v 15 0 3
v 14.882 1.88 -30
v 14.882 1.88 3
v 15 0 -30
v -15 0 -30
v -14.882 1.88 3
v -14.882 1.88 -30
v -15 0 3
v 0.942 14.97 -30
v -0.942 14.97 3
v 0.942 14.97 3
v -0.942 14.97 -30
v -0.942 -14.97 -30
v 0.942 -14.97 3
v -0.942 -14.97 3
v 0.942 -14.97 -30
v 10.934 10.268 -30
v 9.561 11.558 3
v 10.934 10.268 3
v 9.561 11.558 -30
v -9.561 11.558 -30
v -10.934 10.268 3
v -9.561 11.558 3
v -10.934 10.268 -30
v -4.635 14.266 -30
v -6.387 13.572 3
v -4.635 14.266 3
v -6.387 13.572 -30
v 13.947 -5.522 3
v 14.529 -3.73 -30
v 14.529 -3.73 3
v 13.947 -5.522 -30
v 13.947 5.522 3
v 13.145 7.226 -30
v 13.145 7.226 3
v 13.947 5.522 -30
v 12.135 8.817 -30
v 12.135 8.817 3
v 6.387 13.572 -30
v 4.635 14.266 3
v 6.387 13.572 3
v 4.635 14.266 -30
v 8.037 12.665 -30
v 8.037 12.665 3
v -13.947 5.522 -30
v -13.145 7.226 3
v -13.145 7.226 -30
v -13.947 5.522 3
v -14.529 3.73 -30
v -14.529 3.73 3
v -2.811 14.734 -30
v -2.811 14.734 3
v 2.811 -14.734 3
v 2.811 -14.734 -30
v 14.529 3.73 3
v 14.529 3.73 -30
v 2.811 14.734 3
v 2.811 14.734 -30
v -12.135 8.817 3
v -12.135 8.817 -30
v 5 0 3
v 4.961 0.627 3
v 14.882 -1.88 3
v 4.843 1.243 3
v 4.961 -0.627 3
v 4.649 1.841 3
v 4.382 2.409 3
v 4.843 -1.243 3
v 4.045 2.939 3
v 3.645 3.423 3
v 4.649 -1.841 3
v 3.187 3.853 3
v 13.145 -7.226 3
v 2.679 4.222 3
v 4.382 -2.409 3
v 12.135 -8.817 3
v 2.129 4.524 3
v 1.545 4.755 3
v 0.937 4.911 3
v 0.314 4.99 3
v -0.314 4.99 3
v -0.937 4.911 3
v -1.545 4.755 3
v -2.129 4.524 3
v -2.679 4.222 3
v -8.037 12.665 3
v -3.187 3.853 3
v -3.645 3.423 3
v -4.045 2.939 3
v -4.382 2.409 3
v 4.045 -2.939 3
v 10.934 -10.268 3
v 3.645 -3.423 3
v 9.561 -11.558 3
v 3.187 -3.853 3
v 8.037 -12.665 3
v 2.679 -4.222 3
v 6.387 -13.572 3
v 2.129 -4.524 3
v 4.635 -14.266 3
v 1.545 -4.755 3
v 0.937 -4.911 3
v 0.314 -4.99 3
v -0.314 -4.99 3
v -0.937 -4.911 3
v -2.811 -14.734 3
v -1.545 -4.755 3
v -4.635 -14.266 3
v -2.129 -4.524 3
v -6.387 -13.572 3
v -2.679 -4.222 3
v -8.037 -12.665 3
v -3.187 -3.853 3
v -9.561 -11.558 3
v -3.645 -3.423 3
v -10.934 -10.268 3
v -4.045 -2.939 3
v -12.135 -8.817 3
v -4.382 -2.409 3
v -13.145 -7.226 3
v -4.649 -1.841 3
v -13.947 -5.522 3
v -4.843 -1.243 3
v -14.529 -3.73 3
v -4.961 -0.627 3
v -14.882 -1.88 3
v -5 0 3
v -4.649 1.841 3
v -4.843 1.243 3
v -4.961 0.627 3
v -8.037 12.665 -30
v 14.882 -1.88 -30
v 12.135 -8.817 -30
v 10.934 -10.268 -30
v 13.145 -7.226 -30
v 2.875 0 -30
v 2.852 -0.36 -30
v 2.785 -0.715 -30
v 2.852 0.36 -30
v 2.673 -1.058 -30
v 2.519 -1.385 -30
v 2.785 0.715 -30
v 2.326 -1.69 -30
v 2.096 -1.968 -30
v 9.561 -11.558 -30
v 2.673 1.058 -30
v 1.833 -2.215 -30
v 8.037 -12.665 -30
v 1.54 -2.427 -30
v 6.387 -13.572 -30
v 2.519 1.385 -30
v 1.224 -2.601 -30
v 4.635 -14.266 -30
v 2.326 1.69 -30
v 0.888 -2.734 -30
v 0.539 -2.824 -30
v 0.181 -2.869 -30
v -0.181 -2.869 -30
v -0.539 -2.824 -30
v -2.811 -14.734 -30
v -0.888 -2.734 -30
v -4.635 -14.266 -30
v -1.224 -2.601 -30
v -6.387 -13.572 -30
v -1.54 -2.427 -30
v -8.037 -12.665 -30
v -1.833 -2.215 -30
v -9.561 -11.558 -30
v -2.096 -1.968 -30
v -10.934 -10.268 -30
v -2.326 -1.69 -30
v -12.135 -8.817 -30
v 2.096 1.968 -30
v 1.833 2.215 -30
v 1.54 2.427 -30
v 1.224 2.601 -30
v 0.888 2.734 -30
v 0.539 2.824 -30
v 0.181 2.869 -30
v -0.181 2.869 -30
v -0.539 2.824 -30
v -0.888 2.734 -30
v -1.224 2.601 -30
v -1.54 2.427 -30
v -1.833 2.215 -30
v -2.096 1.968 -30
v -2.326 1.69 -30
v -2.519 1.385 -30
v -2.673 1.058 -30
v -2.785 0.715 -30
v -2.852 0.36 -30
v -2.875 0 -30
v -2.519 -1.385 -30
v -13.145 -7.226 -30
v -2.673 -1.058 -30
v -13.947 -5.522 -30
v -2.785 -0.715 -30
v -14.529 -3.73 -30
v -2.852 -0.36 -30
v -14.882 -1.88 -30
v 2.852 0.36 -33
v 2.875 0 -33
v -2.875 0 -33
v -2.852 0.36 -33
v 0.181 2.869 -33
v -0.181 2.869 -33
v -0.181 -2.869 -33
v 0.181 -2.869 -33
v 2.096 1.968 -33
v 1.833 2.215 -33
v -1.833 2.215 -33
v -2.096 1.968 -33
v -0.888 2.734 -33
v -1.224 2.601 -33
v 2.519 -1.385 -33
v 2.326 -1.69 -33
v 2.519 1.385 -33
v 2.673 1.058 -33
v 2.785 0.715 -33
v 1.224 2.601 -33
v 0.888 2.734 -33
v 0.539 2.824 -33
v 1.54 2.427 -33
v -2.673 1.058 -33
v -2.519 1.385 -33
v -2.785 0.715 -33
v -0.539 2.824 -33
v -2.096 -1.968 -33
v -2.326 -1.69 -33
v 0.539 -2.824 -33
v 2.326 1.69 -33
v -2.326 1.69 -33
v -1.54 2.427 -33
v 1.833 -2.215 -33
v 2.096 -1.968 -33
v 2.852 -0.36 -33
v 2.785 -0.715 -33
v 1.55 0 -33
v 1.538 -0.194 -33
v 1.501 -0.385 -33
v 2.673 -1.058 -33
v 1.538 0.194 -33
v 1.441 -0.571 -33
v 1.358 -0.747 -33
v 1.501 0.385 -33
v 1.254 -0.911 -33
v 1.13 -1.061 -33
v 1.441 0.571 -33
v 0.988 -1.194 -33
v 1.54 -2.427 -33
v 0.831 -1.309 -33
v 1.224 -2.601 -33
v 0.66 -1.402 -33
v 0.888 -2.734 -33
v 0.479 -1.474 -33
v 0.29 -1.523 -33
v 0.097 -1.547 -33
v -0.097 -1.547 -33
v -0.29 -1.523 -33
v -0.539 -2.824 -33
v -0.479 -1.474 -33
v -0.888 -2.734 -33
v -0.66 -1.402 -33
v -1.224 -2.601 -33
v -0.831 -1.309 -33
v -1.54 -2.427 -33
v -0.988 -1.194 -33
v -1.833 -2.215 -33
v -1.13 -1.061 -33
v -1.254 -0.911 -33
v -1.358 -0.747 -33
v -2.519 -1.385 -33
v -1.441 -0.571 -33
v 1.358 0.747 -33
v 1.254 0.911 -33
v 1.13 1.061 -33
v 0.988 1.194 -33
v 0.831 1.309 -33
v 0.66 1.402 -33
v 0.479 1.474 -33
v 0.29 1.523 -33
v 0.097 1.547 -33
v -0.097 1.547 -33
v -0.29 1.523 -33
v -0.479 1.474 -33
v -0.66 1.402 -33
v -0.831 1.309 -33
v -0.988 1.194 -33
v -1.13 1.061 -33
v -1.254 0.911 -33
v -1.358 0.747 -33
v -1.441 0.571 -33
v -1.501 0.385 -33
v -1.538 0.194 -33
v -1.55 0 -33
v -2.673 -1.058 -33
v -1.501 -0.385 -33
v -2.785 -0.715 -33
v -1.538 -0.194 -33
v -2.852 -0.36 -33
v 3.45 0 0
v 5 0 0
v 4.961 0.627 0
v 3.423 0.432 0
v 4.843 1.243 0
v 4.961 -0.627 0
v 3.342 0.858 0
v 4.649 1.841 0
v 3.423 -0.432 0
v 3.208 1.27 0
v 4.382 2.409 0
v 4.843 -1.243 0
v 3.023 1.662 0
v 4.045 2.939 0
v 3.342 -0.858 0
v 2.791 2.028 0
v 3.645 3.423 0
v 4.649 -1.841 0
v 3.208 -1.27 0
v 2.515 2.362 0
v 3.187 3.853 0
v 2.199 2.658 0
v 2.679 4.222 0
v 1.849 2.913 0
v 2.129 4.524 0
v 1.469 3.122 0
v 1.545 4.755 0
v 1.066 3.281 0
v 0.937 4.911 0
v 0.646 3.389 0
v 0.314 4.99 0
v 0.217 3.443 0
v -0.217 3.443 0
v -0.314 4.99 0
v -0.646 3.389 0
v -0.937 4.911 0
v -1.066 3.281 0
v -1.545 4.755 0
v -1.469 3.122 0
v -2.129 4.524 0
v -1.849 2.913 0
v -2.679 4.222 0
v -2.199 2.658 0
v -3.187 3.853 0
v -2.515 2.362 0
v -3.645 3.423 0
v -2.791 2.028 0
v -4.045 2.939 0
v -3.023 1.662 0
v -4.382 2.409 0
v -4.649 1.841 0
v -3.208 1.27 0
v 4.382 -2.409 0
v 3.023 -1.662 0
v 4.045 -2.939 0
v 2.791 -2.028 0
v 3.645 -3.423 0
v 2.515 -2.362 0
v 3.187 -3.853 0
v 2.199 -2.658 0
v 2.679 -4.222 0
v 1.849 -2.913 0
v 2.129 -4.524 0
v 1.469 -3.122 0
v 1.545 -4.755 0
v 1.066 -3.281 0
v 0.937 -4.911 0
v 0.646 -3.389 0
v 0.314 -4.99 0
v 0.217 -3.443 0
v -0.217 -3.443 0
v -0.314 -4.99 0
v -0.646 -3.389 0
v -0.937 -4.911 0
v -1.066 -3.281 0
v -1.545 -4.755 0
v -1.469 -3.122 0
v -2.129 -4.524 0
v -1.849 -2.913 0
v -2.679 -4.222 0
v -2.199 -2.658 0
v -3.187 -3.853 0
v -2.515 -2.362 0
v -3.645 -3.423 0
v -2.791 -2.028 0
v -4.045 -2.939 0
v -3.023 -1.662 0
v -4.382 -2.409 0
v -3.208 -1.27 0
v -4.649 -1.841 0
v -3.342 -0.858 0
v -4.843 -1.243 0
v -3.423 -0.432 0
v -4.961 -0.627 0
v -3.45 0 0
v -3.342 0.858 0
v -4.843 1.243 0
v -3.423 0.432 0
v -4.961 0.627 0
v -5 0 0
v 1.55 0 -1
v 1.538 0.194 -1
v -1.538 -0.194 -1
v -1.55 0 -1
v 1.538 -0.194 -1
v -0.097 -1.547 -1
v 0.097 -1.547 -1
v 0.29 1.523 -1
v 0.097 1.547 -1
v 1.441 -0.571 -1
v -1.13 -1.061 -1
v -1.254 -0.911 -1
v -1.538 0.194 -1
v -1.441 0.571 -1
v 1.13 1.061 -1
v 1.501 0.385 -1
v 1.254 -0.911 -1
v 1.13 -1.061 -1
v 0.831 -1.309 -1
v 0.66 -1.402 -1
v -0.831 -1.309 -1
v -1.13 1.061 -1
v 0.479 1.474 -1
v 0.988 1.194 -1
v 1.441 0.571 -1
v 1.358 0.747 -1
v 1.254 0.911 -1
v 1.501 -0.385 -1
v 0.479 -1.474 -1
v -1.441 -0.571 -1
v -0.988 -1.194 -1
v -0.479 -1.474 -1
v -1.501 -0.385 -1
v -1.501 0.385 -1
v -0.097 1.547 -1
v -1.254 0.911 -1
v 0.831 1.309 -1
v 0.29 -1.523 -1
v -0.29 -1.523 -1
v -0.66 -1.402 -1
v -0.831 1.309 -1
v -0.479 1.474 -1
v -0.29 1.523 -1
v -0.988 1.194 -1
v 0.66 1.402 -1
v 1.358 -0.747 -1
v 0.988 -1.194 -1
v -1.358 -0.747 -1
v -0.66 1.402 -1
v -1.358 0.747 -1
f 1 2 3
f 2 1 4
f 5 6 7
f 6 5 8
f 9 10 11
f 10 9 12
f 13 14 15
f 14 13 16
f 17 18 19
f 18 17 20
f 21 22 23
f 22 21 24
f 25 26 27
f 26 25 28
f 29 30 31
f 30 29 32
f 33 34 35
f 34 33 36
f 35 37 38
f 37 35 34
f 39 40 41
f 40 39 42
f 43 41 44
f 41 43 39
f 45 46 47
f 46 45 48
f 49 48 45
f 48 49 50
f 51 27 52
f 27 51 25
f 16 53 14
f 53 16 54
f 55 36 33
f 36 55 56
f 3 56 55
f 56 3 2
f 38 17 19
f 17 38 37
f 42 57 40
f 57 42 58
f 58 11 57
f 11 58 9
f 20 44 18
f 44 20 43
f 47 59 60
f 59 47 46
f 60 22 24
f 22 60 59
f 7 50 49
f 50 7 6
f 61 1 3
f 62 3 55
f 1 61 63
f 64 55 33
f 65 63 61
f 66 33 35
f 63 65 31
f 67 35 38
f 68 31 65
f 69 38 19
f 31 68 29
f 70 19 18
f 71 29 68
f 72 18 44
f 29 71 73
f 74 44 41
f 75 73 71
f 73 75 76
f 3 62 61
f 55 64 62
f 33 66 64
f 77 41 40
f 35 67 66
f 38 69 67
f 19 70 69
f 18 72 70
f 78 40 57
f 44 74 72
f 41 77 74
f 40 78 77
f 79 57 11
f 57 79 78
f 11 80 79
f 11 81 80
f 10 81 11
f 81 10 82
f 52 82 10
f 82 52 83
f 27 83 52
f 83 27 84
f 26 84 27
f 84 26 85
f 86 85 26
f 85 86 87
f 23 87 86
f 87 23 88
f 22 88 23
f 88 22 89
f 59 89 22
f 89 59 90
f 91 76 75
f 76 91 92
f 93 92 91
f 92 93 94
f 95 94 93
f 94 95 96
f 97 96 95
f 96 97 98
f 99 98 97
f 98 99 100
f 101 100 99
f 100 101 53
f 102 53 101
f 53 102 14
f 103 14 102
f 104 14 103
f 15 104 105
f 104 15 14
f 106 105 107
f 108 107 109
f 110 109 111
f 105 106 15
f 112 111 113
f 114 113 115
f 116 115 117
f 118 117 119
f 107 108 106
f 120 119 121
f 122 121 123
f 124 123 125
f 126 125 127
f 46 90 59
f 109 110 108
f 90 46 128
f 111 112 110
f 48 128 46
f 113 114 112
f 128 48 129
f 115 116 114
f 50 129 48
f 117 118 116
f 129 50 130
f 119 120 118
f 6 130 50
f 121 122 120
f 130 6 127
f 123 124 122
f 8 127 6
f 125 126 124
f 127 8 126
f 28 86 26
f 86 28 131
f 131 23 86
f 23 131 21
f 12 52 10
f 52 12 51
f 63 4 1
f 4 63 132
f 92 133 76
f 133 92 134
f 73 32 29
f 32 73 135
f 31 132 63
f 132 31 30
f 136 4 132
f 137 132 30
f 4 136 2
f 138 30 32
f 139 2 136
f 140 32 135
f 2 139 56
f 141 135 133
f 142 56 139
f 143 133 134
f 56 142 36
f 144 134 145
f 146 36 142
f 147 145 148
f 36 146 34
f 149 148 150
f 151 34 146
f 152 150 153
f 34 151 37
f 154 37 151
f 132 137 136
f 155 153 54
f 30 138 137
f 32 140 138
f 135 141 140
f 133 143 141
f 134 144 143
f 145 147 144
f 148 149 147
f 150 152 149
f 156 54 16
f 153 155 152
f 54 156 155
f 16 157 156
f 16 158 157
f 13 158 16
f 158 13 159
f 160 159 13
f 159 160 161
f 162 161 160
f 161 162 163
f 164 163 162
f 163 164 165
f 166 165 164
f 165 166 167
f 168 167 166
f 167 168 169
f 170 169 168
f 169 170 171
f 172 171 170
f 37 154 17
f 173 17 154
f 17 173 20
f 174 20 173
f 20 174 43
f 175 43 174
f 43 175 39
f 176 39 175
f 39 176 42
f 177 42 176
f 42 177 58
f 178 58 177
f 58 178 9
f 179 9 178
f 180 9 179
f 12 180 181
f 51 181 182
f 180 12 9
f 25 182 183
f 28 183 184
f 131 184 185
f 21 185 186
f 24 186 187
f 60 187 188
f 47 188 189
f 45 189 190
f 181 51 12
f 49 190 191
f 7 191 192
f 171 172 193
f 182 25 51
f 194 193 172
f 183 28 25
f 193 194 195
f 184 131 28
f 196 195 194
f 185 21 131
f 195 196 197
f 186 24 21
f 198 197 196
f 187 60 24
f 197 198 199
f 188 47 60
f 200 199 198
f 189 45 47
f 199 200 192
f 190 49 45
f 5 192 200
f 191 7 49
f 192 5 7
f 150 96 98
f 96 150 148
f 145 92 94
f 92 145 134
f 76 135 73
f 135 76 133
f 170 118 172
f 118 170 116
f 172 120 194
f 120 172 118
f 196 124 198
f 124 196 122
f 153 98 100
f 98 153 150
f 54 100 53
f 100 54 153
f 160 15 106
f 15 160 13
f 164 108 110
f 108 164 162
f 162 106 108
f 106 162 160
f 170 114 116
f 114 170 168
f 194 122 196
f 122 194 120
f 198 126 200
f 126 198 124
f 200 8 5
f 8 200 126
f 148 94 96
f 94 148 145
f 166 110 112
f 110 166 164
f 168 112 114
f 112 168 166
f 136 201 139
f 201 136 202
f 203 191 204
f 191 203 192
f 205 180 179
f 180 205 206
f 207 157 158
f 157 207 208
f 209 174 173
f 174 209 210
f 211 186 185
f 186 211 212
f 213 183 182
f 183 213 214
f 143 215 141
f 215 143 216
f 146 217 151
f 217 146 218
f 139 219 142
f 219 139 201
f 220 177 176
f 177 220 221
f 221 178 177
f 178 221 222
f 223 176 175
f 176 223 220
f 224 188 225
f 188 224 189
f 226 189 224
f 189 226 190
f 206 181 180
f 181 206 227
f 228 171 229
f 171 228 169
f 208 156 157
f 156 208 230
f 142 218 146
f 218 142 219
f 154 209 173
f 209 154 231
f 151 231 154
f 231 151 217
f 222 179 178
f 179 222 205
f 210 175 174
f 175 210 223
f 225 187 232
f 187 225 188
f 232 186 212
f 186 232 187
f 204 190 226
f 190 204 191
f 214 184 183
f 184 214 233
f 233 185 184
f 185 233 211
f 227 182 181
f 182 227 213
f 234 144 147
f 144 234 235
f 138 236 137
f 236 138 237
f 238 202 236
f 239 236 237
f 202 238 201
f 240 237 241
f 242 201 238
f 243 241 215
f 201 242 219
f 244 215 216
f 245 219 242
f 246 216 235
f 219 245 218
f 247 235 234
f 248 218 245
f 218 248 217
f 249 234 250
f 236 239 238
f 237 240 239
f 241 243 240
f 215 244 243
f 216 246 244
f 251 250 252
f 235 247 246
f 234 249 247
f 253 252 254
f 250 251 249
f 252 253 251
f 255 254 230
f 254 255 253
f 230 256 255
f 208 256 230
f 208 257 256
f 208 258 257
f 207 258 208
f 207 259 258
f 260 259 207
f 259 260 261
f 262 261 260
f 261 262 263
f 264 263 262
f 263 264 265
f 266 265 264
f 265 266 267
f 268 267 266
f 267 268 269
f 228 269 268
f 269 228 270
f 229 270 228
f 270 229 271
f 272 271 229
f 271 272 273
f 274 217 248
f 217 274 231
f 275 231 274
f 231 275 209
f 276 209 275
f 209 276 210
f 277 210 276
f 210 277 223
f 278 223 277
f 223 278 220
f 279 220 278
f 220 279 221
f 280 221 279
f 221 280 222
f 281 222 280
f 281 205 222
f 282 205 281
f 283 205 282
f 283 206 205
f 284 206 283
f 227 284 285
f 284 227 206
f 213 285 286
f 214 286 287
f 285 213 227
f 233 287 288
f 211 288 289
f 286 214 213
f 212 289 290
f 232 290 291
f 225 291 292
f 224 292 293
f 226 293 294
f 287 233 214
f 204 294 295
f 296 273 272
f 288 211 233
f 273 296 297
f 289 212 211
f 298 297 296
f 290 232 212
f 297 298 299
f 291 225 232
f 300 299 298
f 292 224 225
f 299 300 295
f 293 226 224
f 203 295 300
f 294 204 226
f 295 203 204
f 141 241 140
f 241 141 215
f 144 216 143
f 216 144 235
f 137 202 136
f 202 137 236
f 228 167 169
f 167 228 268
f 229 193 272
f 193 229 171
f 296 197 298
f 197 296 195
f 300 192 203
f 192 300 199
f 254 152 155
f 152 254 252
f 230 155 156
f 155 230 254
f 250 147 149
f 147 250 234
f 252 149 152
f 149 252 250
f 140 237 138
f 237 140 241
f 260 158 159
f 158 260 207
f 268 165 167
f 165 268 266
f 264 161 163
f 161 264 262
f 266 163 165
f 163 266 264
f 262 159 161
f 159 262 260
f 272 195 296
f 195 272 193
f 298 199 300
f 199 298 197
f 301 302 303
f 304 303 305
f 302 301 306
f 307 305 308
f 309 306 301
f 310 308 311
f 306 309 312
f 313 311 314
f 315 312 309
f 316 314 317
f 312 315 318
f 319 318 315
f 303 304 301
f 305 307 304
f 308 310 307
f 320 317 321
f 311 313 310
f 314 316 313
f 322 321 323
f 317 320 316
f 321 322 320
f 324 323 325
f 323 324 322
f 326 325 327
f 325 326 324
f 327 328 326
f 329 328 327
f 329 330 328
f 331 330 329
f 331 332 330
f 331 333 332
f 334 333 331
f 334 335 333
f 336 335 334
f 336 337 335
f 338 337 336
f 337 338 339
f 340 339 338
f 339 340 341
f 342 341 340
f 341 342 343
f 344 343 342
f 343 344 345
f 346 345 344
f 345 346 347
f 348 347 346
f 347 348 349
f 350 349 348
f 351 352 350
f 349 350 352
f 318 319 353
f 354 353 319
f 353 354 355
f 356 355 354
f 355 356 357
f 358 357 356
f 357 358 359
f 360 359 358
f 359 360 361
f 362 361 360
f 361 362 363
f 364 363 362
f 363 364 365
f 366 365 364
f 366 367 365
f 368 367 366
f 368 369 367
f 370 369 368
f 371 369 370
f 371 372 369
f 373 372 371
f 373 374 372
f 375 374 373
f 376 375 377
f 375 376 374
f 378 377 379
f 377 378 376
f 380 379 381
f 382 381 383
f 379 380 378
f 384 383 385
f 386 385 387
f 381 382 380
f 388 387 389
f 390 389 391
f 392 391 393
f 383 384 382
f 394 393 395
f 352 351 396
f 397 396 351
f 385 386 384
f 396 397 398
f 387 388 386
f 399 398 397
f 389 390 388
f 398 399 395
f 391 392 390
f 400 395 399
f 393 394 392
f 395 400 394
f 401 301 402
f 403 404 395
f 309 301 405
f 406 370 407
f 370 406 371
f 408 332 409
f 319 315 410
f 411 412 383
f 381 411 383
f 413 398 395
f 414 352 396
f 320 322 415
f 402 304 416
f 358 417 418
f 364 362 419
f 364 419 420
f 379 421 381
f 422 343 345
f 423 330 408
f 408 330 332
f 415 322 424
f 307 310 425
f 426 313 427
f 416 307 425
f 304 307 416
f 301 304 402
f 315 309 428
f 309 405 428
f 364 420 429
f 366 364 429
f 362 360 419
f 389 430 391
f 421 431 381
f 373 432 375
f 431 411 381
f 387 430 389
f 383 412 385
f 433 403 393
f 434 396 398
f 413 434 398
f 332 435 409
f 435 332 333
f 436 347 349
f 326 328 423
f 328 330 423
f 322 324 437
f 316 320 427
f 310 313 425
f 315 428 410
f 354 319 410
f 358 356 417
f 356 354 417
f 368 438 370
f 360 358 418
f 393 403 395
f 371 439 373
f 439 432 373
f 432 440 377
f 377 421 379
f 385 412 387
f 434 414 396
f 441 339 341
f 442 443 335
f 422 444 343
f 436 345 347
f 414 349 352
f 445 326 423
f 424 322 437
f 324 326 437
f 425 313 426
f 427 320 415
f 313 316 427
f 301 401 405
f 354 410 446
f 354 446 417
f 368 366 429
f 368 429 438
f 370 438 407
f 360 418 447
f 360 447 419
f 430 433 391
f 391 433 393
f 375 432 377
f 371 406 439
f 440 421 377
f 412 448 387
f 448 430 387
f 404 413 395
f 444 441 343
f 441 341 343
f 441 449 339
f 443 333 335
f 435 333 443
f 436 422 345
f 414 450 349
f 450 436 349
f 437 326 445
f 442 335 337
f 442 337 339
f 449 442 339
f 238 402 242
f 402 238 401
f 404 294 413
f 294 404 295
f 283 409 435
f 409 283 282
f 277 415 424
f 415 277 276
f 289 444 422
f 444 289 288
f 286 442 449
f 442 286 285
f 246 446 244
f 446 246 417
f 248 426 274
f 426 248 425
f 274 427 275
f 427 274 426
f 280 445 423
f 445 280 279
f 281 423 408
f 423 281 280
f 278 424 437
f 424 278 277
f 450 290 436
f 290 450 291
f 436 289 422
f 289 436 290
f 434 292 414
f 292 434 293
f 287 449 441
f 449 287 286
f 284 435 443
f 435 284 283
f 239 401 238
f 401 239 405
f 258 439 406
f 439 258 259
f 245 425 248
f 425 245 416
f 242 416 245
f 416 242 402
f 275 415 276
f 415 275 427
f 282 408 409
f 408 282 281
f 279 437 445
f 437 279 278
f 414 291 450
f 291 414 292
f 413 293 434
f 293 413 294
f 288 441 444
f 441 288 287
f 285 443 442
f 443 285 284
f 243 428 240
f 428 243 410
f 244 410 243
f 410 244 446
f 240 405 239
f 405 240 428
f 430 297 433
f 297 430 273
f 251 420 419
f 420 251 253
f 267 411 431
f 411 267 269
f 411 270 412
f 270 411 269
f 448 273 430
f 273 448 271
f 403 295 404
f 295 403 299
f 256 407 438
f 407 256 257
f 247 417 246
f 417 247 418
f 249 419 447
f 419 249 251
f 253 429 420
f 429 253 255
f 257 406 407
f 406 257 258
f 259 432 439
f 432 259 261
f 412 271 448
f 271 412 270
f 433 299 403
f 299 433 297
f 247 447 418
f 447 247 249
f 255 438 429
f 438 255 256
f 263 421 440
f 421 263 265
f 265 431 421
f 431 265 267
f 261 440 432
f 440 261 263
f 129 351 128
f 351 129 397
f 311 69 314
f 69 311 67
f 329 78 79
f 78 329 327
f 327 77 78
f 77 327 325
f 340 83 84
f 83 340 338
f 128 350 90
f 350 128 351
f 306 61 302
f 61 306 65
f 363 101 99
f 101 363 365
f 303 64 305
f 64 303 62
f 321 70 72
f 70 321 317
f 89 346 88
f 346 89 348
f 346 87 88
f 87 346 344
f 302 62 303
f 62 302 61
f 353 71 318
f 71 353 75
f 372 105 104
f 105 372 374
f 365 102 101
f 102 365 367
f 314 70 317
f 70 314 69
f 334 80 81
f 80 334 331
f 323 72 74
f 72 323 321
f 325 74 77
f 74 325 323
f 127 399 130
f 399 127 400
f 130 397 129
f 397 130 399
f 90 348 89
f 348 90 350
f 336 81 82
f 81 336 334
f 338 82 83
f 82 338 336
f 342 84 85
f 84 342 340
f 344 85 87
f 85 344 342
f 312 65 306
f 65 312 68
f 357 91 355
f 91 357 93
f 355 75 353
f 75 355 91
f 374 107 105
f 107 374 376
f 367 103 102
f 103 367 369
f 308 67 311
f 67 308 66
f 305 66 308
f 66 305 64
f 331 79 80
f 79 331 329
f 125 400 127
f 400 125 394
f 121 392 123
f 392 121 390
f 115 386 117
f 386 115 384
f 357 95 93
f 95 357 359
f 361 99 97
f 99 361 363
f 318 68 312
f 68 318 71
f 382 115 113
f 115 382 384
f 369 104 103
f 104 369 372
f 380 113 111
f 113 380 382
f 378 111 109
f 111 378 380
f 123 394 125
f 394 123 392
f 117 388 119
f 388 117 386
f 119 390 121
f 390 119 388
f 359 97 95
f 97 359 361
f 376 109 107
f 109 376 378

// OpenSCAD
$fn = 50;

difference() {
	union() {
		translate(v = [0, 0, -30.0]) {
			cylinder(h = 33, r = 15.0);
		}
		#translate(v = [0, 0, -33.0]) {
			cylinder(h = 33, r = 2.875);
		}
	}
	union() {
		translate(v = [0, 0, 0]) {
			rotate(a = [0, 0, 0]) {
				difference() {
					union() {
						translate(v = [0, 0, -33.0]) {
							cylinder(h = 33, r = 1.25);
						}
						translate(v = [0, 0, -1.0]) {
							cylinder(h = 1.0, r1 = 1.55, r2 = 3.45);
						}
						translate(v = [0, 0, -33.0]) {
							cylinder(h = 33, r = 1.55);
						}
						translate(v = [0, 0, -33.0]) {
							cylinder(h = 33, r = 1.25);
						}
					}
					union();
				}
			}
		}
		#cylinder(h = 3, r = 5.0);
	}
}
